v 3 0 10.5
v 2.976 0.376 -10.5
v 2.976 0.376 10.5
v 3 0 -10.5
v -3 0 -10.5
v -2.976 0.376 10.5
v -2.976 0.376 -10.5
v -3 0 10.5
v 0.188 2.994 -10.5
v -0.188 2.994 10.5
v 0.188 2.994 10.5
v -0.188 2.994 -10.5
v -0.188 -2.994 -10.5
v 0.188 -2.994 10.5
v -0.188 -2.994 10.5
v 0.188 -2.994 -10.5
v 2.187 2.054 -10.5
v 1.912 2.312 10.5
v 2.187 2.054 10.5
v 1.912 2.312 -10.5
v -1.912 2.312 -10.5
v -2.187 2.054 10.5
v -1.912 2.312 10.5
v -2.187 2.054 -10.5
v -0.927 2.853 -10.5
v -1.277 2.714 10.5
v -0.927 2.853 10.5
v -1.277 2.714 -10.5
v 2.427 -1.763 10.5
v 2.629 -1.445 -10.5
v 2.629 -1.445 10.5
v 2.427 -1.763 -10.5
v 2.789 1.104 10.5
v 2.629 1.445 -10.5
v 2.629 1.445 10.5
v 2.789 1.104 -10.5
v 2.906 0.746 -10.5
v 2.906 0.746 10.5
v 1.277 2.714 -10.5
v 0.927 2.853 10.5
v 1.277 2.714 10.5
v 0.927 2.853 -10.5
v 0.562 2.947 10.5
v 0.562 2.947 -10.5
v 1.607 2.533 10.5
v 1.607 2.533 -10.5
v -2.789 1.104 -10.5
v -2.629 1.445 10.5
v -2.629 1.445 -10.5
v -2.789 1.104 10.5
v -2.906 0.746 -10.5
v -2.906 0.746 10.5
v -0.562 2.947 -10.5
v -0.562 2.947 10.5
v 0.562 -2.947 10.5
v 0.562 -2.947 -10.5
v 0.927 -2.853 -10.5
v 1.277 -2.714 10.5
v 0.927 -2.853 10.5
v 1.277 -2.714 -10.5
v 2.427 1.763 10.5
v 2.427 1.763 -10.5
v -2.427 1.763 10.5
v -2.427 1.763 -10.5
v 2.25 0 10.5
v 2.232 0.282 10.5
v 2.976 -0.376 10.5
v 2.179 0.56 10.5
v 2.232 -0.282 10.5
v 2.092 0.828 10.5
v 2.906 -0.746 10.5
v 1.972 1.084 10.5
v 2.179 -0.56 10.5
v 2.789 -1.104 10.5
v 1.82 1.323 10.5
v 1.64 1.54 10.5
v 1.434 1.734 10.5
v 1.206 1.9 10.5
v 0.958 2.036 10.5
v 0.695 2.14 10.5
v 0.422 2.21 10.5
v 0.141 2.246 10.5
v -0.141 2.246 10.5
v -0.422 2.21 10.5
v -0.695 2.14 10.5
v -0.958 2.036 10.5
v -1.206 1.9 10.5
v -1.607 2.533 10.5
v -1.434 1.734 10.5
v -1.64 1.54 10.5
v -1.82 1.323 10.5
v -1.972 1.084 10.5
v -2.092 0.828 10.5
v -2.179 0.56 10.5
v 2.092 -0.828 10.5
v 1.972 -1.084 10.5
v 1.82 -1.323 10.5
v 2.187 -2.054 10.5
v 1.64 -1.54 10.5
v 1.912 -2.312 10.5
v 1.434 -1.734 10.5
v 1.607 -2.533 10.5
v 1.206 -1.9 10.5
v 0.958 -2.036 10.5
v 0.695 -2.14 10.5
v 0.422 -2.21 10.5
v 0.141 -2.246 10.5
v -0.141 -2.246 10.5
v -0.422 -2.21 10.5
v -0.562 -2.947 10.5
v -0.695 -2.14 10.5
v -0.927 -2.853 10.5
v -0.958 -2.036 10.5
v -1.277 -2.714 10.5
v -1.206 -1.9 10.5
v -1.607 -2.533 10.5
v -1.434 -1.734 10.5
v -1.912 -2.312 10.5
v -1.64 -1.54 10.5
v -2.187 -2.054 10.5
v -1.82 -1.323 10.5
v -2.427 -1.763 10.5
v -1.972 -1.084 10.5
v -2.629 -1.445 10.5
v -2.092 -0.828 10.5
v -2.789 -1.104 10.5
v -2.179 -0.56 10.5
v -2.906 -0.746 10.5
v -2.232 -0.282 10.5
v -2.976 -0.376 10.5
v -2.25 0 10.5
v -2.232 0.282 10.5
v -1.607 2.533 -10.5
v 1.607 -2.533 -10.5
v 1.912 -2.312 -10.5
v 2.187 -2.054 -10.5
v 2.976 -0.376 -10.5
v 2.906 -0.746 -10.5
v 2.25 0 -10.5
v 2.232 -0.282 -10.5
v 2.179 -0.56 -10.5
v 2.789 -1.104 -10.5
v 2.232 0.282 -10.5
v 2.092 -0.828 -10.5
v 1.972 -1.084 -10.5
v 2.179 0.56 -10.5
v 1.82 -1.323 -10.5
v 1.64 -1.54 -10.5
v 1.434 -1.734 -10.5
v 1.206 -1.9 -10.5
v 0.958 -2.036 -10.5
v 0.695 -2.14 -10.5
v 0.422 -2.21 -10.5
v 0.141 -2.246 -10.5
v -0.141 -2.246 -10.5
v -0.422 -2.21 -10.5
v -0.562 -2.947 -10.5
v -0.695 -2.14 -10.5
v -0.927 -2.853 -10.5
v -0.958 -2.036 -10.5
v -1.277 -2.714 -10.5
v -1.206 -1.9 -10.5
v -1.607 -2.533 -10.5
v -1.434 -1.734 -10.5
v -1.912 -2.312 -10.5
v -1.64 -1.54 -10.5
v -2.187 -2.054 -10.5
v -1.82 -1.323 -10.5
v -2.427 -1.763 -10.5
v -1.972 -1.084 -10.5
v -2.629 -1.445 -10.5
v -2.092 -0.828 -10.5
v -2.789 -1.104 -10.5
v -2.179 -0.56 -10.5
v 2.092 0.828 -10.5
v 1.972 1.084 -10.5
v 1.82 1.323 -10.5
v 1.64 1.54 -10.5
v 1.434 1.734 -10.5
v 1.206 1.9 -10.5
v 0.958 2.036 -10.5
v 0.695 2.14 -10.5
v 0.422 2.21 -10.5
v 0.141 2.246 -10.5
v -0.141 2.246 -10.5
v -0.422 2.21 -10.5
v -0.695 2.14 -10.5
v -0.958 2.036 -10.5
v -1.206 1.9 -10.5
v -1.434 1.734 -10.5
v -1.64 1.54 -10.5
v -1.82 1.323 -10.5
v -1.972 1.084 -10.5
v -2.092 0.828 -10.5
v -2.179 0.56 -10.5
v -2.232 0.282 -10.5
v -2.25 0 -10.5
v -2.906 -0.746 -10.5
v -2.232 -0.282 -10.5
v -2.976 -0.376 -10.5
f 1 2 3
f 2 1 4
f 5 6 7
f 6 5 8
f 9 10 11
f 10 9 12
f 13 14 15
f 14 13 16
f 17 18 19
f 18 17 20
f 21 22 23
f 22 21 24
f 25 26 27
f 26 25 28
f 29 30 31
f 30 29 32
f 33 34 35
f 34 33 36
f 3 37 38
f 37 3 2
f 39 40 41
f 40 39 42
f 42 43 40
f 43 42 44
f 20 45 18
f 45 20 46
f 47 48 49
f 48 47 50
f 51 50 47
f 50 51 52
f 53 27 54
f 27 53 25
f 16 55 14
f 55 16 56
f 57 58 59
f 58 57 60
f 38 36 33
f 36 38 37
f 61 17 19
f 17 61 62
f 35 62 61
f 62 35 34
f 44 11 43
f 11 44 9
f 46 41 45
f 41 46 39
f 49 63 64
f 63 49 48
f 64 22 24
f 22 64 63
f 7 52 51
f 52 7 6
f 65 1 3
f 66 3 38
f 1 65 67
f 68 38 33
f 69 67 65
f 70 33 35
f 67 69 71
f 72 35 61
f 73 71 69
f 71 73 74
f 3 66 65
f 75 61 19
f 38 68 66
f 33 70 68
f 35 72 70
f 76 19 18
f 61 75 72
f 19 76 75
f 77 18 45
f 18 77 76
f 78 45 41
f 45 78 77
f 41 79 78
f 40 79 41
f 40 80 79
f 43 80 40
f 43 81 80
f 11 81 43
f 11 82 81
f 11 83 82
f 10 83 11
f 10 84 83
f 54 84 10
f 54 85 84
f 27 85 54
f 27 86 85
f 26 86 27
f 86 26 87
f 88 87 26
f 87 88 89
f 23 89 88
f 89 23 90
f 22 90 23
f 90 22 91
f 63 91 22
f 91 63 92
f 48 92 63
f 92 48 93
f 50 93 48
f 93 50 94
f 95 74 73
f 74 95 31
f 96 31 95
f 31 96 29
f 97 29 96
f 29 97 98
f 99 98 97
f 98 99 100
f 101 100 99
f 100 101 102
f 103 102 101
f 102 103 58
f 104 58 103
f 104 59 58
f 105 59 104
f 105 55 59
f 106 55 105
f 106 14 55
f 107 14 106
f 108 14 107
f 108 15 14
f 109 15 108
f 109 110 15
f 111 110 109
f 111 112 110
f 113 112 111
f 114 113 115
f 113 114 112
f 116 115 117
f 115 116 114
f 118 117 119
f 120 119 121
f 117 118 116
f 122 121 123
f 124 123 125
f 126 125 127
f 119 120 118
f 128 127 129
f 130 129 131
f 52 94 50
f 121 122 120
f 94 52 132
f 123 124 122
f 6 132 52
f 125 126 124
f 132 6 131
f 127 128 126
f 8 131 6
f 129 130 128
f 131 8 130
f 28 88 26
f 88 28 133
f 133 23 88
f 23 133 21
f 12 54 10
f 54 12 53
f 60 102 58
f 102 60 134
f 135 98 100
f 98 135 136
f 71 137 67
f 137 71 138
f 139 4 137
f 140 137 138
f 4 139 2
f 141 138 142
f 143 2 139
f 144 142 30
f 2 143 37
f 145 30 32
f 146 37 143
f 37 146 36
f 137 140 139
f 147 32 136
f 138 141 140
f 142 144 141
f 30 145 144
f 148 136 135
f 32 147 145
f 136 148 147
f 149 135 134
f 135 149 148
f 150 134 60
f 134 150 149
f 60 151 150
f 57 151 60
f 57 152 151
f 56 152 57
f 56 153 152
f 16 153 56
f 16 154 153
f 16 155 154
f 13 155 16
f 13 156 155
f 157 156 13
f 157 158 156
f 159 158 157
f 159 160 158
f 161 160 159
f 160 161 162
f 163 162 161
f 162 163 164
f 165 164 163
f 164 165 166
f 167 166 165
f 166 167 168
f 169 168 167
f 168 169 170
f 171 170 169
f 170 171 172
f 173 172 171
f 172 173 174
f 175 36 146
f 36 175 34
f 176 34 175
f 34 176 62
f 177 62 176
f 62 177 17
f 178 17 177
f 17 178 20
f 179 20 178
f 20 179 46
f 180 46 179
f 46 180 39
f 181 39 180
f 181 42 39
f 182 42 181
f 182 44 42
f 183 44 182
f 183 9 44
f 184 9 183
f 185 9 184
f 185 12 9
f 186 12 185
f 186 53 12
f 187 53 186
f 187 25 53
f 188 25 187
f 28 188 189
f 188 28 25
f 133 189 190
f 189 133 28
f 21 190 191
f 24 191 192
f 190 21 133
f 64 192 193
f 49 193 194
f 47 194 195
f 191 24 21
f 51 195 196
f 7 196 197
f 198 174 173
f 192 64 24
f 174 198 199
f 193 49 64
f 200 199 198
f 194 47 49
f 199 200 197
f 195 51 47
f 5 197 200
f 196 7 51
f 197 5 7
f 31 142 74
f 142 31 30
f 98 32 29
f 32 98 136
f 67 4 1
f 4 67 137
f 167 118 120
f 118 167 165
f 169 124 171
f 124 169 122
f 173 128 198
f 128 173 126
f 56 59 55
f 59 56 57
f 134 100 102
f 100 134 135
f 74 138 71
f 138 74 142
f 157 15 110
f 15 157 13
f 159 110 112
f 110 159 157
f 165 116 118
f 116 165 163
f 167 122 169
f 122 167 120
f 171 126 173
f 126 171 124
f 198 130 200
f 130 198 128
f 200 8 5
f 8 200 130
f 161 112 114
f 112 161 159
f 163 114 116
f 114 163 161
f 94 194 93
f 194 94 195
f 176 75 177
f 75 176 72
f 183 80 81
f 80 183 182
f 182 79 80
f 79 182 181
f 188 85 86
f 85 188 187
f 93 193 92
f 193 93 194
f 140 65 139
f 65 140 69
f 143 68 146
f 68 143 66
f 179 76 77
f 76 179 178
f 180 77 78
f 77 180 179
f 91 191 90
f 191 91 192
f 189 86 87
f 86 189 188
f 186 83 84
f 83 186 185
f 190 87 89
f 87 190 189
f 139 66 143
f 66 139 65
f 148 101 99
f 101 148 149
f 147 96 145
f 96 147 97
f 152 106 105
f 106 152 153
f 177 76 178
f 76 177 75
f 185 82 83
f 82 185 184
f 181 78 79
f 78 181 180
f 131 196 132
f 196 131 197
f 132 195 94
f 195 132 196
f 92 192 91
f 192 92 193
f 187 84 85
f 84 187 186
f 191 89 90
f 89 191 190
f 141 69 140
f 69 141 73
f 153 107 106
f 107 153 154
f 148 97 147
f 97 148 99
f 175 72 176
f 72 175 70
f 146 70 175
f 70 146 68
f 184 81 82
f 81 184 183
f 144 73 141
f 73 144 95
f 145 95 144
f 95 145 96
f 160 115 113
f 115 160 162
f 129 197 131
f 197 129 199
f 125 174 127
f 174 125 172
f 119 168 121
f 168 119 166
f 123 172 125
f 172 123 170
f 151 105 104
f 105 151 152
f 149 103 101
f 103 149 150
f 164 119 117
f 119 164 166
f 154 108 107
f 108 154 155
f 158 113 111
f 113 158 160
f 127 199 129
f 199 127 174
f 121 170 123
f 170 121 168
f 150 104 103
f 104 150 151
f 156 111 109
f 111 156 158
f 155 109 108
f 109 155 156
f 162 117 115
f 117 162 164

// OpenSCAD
$fn = 50;


difference() {
	union() {
		translate(v = [0, 0, -10.5000000000]) {
			cylinder(h = 21, r = 3.0000000000);
		}
	}
	union() {
		translate(v = [0, 0, -100.0000000000]) {
			cylinder(h = 200, r = 2.2500000000);
		}
	}
}
